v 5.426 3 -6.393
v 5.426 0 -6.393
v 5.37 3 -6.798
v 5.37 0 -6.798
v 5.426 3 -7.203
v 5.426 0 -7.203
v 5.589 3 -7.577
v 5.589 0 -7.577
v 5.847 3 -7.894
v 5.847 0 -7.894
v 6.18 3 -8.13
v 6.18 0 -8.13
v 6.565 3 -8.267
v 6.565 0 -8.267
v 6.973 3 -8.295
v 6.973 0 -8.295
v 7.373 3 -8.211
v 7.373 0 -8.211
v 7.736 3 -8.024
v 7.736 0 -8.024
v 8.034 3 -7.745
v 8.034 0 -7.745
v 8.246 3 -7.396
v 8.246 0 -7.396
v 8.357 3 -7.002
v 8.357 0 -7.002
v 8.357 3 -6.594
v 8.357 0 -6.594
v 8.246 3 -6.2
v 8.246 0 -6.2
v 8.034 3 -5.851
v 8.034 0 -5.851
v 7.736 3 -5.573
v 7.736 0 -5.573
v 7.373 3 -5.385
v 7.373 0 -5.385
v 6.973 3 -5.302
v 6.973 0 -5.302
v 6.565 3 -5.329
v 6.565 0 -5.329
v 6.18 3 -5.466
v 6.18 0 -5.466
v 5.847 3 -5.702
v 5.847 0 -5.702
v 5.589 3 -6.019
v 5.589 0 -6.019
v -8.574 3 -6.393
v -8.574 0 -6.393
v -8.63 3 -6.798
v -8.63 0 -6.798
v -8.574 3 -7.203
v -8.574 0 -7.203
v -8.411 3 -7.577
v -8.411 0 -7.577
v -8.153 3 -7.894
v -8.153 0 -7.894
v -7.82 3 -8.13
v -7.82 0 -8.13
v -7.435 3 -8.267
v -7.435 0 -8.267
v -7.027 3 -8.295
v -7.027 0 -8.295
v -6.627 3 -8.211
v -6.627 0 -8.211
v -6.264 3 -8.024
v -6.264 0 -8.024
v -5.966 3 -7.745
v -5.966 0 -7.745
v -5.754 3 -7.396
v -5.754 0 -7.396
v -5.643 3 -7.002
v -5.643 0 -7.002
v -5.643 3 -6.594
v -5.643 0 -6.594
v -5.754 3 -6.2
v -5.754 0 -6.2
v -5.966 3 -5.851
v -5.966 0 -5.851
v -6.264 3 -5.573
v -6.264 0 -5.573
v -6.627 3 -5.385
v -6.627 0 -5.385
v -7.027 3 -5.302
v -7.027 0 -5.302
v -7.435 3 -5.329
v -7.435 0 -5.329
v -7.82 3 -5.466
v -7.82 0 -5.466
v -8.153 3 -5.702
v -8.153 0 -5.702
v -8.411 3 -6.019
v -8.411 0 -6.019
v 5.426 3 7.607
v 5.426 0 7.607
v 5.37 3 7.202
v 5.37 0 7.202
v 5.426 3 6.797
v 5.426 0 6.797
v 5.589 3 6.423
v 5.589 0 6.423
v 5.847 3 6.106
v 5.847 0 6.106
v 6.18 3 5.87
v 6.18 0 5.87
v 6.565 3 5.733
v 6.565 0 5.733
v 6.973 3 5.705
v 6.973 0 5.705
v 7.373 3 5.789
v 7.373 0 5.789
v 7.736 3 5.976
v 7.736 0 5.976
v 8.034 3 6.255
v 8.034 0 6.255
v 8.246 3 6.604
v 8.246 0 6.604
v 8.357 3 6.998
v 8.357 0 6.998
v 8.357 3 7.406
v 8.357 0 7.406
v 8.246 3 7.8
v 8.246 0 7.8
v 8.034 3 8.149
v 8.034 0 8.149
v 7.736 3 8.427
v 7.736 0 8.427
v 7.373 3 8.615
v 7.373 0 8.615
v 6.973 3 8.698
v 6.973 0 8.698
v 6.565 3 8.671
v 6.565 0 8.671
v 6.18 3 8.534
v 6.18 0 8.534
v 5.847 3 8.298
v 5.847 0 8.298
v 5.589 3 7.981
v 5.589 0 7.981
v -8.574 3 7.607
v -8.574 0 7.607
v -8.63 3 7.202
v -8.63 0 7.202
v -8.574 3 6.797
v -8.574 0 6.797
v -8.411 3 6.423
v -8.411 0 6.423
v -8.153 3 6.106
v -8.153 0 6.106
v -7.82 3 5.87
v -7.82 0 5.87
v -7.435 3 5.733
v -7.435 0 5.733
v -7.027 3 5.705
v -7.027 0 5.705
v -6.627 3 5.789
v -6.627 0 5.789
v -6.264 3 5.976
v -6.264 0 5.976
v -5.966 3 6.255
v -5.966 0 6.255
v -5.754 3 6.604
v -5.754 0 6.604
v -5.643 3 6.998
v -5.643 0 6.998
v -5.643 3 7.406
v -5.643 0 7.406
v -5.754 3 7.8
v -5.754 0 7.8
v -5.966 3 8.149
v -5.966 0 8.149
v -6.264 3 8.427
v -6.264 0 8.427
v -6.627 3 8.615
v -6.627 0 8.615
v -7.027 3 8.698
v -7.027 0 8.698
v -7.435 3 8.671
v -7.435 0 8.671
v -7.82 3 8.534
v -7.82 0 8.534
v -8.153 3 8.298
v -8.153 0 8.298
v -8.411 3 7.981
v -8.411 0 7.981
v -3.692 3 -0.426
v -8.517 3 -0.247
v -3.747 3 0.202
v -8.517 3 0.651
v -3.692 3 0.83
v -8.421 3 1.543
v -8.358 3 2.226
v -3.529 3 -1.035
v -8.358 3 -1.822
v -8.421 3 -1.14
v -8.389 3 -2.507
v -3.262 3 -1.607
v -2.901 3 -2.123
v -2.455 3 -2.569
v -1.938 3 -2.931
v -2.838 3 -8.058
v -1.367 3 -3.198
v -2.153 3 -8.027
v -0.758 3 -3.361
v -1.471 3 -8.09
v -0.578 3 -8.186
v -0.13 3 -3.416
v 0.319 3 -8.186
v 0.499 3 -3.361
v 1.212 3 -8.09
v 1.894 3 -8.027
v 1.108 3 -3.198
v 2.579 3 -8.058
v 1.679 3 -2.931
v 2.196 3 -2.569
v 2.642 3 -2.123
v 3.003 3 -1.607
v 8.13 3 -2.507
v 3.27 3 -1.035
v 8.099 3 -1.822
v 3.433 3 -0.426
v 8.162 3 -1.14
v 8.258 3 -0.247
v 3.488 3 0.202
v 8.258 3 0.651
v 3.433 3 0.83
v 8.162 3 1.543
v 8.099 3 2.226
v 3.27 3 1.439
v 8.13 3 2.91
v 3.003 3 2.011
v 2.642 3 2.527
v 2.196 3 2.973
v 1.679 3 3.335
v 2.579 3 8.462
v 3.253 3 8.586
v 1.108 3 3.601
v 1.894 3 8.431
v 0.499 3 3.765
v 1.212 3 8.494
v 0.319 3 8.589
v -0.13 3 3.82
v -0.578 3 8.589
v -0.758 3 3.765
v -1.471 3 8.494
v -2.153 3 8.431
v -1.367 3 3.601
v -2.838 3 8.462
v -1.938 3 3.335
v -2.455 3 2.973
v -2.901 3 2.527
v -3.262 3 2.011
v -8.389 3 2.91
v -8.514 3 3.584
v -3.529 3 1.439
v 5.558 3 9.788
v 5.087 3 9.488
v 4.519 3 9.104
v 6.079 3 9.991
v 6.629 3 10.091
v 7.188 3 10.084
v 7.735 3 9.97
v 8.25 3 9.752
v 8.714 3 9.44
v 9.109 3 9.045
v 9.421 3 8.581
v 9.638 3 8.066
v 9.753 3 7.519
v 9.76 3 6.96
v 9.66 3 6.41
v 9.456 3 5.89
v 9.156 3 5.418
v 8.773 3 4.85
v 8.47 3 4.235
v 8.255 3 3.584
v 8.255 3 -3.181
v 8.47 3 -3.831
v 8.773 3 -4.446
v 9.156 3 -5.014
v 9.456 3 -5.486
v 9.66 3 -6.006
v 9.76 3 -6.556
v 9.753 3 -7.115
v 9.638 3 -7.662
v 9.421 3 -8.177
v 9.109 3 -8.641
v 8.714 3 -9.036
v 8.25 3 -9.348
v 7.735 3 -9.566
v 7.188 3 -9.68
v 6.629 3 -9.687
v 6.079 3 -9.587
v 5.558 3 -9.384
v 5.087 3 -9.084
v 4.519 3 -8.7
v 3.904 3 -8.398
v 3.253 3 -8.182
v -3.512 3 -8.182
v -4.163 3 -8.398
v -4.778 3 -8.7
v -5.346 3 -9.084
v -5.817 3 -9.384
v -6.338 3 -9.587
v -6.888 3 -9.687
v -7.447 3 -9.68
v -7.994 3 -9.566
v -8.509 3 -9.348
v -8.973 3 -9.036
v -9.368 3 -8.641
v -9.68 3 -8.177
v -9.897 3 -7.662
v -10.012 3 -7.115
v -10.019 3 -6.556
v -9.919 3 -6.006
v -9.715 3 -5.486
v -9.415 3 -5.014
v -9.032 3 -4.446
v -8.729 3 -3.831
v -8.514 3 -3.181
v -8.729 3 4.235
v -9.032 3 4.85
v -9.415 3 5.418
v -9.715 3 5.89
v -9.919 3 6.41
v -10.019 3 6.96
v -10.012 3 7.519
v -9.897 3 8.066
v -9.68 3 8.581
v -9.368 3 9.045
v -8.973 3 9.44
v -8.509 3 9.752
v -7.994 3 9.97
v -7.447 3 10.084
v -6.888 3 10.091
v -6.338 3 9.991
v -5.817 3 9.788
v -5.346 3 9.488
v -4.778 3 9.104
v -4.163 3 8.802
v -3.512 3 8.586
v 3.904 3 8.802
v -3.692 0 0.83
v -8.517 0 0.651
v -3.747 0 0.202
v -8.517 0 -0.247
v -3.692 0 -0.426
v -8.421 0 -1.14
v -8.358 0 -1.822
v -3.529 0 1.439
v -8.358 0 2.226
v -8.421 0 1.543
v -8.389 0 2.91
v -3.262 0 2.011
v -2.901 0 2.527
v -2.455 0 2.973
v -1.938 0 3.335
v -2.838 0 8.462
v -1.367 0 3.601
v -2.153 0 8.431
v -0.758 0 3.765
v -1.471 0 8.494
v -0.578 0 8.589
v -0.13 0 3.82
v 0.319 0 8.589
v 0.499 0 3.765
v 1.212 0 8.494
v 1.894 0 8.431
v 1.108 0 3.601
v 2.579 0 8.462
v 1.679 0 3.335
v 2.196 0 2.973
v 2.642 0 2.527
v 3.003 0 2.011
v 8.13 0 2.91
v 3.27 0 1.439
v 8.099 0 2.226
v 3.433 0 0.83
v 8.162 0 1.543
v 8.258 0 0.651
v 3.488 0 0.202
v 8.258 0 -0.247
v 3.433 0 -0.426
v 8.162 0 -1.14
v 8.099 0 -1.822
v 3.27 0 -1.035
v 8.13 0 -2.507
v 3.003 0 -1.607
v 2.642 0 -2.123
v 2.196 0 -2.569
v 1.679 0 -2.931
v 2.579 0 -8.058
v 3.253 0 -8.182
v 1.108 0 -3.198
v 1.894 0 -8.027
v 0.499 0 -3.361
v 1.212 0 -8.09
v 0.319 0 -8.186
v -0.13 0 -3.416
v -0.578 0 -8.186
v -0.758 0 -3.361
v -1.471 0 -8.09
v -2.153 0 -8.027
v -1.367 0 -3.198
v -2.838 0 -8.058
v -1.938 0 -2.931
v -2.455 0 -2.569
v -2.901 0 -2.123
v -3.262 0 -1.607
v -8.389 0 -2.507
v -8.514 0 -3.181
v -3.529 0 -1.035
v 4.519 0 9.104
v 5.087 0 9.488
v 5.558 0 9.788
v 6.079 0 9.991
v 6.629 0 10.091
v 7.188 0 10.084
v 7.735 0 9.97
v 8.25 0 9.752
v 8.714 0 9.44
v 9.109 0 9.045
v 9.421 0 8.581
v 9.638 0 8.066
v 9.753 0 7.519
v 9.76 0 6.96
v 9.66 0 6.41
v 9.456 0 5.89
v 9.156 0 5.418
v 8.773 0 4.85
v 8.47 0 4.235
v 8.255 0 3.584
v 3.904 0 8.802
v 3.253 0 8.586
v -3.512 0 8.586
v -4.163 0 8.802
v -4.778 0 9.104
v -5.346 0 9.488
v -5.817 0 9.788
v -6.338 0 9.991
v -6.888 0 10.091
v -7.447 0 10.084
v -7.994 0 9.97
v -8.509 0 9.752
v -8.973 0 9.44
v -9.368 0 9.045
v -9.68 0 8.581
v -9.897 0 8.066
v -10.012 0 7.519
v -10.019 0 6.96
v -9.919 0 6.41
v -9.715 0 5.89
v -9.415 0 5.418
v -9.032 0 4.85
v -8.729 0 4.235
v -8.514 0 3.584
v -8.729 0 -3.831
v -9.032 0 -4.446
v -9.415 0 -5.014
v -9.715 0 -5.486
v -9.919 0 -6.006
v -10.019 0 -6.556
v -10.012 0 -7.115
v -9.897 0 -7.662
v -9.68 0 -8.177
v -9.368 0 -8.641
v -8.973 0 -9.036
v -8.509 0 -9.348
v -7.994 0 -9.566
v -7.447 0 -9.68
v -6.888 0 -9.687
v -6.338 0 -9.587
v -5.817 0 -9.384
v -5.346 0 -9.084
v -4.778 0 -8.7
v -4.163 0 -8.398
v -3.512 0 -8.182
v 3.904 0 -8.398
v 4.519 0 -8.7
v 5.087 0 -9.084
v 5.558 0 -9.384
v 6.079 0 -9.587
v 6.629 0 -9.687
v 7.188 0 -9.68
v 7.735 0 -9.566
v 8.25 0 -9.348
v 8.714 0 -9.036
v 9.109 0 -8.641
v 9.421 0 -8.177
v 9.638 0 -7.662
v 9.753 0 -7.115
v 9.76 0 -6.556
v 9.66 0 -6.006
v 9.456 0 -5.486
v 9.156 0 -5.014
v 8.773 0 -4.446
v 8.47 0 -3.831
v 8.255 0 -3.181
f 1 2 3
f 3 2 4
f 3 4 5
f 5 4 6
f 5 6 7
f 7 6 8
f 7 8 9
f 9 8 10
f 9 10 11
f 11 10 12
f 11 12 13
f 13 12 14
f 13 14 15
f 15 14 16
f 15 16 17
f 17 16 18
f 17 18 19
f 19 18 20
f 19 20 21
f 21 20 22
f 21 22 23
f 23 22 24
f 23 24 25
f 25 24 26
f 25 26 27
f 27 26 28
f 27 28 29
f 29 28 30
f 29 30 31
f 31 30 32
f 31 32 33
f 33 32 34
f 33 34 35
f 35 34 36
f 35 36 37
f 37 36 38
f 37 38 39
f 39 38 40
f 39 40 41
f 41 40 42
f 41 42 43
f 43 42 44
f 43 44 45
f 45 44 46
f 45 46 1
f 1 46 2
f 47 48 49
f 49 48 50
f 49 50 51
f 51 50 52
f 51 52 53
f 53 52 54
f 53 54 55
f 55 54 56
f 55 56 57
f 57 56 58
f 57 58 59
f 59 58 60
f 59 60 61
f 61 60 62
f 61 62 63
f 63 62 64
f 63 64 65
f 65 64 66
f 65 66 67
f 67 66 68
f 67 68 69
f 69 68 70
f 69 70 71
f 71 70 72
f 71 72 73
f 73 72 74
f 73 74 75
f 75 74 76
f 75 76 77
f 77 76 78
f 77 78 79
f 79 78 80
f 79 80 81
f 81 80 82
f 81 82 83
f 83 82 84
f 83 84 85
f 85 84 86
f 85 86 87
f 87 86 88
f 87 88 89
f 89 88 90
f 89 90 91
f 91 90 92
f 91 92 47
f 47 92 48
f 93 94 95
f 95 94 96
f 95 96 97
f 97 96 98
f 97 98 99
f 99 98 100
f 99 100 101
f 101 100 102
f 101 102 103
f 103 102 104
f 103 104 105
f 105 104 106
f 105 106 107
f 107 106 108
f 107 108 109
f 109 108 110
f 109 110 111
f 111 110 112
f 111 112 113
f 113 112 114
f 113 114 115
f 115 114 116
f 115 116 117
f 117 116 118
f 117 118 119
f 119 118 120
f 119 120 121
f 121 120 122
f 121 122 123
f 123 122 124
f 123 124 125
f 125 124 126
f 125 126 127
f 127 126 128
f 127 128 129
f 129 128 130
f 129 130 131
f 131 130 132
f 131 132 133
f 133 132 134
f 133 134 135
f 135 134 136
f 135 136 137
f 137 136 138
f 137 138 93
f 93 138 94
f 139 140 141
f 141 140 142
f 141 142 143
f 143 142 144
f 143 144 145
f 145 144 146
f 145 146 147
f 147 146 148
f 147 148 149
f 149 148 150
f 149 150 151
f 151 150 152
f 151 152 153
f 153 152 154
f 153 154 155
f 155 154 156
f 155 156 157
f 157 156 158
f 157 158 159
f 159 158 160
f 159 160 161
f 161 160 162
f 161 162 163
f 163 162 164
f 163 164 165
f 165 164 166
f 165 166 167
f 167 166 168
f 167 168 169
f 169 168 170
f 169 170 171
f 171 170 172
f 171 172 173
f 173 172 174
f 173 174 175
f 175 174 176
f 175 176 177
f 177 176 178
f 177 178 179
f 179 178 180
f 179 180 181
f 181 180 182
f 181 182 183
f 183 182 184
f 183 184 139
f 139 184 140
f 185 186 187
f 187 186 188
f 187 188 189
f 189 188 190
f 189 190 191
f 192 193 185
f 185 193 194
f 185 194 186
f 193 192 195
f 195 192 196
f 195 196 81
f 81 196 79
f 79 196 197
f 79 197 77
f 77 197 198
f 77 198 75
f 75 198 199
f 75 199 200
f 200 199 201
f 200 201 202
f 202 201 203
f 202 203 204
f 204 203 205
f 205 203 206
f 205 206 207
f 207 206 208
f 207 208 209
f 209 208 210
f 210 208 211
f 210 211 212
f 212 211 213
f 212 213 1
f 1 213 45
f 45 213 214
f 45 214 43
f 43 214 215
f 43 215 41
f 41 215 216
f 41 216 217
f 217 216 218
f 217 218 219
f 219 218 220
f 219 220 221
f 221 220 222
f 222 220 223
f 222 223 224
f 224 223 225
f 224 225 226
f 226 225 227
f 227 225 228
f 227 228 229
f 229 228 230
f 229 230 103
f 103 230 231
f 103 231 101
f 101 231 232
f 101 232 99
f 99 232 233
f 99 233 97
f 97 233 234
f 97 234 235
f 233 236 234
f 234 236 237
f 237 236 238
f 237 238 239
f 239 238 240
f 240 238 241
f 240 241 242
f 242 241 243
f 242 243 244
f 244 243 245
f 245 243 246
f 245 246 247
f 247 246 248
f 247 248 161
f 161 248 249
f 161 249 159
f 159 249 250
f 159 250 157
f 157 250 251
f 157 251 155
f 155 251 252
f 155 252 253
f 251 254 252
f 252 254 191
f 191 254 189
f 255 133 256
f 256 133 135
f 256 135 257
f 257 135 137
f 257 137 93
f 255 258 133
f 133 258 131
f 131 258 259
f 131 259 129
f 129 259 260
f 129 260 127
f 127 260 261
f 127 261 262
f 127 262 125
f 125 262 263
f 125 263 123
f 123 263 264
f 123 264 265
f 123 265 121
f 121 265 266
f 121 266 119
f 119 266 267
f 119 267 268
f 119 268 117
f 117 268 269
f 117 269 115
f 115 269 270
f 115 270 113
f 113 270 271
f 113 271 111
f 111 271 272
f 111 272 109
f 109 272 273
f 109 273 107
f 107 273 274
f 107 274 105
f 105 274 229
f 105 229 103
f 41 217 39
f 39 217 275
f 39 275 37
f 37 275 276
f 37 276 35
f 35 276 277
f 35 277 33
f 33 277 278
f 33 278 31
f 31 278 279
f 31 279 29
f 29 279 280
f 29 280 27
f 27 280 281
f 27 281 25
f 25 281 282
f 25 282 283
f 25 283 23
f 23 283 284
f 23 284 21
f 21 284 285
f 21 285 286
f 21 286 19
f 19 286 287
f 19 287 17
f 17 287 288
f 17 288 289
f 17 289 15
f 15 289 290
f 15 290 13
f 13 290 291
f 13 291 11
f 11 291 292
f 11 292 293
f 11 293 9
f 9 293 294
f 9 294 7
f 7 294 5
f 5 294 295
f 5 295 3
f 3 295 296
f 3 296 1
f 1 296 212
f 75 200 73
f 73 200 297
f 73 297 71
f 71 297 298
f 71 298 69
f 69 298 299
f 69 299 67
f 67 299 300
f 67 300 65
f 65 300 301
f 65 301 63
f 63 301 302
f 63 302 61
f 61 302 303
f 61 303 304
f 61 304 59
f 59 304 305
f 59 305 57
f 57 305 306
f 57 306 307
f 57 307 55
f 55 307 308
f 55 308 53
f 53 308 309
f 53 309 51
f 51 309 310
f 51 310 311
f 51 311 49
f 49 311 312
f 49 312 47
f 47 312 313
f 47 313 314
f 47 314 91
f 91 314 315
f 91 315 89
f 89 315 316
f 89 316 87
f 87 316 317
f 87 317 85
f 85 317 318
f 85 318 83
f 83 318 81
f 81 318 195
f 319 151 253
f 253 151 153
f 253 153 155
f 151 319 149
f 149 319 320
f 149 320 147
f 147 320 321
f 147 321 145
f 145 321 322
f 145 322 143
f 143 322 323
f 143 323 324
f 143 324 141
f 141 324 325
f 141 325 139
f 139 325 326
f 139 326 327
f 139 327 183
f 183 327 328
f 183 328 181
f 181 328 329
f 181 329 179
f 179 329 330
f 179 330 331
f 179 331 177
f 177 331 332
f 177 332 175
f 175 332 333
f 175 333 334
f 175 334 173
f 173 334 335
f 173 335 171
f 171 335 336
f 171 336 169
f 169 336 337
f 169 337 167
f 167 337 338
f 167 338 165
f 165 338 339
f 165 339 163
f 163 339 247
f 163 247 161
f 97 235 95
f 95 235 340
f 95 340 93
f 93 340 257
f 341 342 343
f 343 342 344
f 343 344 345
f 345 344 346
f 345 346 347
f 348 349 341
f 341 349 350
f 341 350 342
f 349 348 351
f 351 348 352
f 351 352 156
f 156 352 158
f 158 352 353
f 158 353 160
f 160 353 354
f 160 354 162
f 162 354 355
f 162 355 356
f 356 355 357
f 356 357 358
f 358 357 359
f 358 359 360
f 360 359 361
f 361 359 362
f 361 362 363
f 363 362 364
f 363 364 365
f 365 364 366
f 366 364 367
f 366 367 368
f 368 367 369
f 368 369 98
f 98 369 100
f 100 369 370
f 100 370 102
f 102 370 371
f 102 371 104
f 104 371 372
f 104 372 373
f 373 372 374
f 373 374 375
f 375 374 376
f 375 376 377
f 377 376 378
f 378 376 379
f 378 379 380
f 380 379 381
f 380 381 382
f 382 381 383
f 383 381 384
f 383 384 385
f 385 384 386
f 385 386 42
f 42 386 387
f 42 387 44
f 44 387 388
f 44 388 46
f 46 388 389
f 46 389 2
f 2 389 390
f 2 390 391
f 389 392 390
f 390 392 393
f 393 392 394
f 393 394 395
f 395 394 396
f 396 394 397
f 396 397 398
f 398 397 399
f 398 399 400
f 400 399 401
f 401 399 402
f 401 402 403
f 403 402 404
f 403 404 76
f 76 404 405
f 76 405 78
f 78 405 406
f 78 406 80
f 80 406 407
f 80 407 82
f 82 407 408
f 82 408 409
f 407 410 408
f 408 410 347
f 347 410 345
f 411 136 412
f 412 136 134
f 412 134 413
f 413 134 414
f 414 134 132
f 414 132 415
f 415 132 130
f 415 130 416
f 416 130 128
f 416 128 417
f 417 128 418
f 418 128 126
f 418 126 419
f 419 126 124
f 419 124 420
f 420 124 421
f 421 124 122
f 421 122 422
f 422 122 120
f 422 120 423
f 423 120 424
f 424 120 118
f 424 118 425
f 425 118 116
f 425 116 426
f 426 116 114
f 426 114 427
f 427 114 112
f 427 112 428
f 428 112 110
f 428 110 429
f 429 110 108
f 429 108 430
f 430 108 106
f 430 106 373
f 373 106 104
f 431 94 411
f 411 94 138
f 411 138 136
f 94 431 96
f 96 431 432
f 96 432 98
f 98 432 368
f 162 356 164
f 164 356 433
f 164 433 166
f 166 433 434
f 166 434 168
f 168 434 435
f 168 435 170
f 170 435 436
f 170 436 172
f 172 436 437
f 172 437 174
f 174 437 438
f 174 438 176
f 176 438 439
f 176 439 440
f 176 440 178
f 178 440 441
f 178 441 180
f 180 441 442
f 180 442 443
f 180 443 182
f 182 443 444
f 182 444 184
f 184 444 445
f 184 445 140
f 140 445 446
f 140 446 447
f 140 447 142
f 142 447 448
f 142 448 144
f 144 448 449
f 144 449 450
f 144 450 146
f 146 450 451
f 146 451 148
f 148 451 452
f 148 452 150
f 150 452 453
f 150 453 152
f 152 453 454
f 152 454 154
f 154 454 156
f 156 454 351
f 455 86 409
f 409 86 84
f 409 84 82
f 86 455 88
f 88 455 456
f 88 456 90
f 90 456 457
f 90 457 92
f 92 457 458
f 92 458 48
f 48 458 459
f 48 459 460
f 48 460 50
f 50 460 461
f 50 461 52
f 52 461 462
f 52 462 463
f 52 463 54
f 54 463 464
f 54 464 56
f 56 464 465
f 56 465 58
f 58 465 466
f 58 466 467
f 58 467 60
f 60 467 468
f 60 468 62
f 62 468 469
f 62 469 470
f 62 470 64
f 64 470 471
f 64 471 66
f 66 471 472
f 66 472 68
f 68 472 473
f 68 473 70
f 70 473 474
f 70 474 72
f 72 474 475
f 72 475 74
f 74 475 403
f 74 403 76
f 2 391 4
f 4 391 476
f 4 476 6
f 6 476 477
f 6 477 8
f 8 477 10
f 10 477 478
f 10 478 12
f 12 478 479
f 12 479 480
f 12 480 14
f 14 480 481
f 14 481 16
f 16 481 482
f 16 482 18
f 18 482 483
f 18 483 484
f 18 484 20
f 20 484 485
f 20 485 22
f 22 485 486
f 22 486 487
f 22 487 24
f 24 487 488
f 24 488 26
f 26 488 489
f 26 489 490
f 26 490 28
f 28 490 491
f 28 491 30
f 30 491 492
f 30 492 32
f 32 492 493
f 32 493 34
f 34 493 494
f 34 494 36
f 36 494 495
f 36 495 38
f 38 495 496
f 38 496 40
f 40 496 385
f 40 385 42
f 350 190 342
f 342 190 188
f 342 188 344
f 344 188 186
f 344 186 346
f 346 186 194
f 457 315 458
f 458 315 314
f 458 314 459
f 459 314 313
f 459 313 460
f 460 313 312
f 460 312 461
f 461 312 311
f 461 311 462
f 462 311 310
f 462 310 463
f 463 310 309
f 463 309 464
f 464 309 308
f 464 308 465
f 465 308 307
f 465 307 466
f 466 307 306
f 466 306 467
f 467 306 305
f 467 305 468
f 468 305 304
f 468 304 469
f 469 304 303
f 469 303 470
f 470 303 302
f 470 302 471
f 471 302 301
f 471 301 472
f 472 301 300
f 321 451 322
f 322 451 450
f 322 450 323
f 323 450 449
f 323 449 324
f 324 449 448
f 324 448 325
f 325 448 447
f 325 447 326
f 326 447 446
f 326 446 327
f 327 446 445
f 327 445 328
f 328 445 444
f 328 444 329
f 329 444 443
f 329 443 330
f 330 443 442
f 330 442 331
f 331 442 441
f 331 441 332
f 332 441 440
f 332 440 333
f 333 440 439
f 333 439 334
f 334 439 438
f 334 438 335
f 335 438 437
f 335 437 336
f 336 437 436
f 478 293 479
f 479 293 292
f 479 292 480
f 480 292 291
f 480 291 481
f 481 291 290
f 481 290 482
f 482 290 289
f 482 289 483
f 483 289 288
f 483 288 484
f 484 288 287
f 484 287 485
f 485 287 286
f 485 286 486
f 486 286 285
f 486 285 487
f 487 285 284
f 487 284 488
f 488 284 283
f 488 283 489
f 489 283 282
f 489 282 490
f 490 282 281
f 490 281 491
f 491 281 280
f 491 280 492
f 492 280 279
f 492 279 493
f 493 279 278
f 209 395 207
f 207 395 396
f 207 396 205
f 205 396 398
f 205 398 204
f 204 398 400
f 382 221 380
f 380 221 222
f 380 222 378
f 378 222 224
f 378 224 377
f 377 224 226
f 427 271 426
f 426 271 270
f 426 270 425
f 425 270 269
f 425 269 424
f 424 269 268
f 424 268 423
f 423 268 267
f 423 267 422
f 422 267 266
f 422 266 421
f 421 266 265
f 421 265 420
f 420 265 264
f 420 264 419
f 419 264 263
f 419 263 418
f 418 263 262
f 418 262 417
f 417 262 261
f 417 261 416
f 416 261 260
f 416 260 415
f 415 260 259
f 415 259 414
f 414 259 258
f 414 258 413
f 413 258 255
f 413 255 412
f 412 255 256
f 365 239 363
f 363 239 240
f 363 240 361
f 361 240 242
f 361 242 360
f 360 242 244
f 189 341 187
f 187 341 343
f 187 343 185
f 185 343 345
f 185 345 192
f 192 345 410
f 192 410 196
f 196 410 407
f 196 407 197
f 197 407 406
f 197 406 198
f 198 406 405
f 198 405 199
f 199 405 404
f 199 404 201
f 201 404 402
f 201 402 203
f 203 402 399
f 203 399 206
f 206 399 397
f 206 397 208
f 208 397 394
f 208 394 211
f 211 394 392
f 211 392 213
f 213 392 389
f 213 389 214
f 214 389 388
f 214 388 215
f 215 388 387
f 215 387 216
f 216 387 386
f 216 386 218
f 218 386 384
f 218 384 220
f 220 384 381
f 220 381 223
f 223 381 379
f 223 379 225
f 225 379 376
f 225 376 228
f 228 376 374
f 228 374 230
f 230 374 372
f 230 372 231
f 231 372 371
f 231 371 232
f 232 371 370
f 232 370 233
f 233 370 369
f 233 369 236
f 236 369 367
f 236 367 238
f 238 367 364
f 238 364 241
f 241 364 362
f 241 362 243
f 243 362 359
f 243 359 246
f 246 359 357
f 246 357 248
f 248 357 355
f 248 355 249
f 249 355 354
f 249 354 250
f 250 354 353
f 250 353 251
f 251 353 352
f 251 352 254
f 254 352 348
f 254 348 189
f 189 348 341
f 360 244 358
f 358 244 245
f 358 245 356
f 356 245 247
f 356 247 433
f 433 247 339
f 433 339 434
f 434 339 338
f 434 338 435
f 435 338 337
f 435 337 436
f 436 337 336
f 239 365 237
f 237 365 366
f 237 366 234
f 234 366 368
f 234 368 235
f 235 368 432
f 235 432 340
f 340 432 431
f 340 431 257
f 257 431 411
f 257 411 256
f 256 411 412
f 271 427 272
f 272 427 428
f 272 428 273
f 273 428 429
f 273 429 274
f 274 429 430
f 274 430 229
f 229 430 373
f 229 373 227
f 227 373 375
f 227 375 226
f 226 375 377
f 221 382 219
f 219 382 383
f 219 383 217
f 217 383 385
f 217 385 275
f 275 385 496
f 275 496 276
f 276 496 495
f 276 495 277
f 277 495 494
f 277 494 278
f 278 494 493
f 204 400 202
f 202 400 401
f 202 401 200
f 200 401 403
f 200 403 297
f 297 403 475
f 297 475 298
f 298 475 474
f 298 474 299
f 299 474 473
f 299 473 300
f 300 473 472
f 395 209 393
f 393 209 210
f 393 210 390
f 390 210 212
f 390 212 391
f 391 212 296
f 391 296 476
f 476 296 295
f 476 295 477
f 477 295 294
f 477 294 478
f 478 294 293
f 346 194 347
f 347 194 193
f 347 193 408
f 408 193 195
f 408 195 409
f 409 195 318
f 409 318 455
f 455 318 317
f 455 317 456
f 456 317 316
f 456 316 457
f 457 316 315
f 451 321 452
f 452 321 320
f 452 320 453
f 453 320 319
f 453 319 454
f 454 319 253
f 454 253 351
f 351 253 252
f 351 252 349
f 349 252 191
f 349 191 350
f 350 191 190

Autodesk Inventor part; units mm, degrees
ref_plane "YZ Plane" through (0, 0, 0) normal (1, 0, 0) x (0, 1, 0)
ref_plane "XZ Plane" through (0, 0, 0) normal (0, 1, 0) x (-1, 0, 0)
ref_plane "XY Plane" through (0, 0, 0) normal (0, 0, 1) x (1, 0, 0)
sketch "Эскиз1" plane through (0, 0, 0) normal (0, 1, 0) x (-1, 0, 0)
  circle A0 centre (0.1295, 0.2019) radius 7
  circle A1 centre (-6.8705, 7.2019) radius 1.5
  circle A2 centre (7.1295, 7.2019) radius 1.5
  circle A3 centre (7.1295, -6.7981) radius 1.5
  circle A4 centre (-6.8705, -6.7981) radius 1.5
  line L0 (-6.8705, -10.8093) -> (-6.8705, 13.8282) construction
  line L1 (14.3213, 7.2019) -> (-16.097, 7.2019) construction
  line L2 (7.1295, -11.068) -> (7.1295, 16.1729) construction
  arc A5 (6.5047, 14.6631) -> (7.1295, 16.1729) centre (4.9928, 16.1729) ccw construction
  line L3 (12.5583, -6.7981) -> (-15.6188, -6.7981) construction
  circle A6 centre (7.1295, 7.2019) radius 2.8995
  circle A7 centre (-6.8705, 7.2019) radius 2.8995
  circle A8 centre (-6.8705, -6.7981) radius 2.8995
  circle A9 centre (7.1295, -6.7981) radius 2.8995
  arc A10 (0.5599, -6.4772) -> (-0.2768, -6.4772) centre (0.1416, -8.4329) ccw
  line L4 (5.6295, -6.7981) -> (0.1295, -6.7981)
  line L5 (7.1295, -5.2981) -> (7.1295, 0.2019)
  line L6 (7.1295, 5.7019) -> (7.1295, 0.2019)
  line L7 (5.6295, 7.2019) -> (-5.3705, 7.2019)
  line L8 (-6.8705, 5.7019) -> (-6.8705, -5.2981)
  line L9 (-5.3705, -6.7981) -> (0.1295, -6.7981)
  circle A11 centre (0.1295, 0.2019) radius 8.3995
  circle A12 centre (0.1295, 0.2019) radius 3.6176
  point P0 (-3.971, 7.2019)
  point P1 (-6.8705, 4.3024)
  point P2 (-6.8705, -3.8986)
  point P3 (-3.971, -6.7981)
  point P4 (4.23, -6.7981)
  point P5 (7.1295, -3.8986)
  point P6 (7.1295, 4.3024)
  point P7 (4.23, 7.2019)
  point P8 (4.2478, 7.5225)
  point P9 (-3.9888, 7.5225)
  point P10 (-7.1911, 4.3202)
  point P11 (-7.1911, -3.9164)
  point P12 (-3.9888, -7.1187)
  point P13 (4.2478, -7.1187)
  point P14 (7.4501, -3.9164)
  point P15 (7.4501, 4.3202)
  dimension "d23" = 14
  dimension "d24" = 3
  dimension "d25" = 3
  dimension "d26" = 3
  dimension "d27" = 3
  dimension "d28" = 2
extrude "Выдавливание1" add sketch "Эскиз1" along normal blind 3 contours L5 A9 A0 | L6 A6 A11 A9 L5 | A0 A6 L6 | A0 L7 A6 | A6 L7 A11 L6 | A9 L4 A0 | A9 L5 A11 L4 | A9 A11 L5 | L6 A11 A6 | L7 A7 A11 A6 | A0 A7 L7 | A6 A11 L7 | L9 A8 A0 | L4 A9 A11 A8 L9 | L4 A11 A9 | A9 A11 L4 A3 L5 | L5 A3 A11 | A11 L6 A2 L7 A6 | A11 A2 L6 | A0 L8 A7 | A7 L8 A11 L7 | L7 A11 A7 | L7 A2 A11 | A8 L8 A0 | A8 L9 A11 L8 | A8 A11 L9 | A11 A3 L4 | L8 A8 A11 A7 | A7 A11 L8 | A11 L7 A1 L8 A7 | A11 A1 L7 | L8 A11 A8 | A8 A11 L8 A4 L9 | L9 A4 A11 | L8 A1 A11 | A11 A4 L8
extrude "Выдавливание3" add sketch "Эскиз1" along normal up to surface (3 mm away) contours A0
fillet "Сопряжение грани1" radius 5 2 edges at (-4.2478, 1.5, 7.5225) (-7.4501, 1.5, 4.3202)
fillet "Сопряжение грани2" radius 5 2 edges at (3.9888, 1.5, 7.5225) (7.1911, 1.5, 4.3202)
fillet_without_effect "Сопряжение грани3"
fillet "Сопряжение грани4" radius 5 2 edges at (7.1911, 1.5, -3.9164) (3.9888, 1.5, -7.1187)
fillet "Сопряжение грани5" radius 5 2 edges at (-4.2478, 1.5, -7.1187) (-7.4501, 1.5, -3.9164)
fillet_without_effect "Сопряжение грани6"
fillet_without_effect "Сопряжение грани7"
fillet_without_effect "Сопряжение грани8"
properties part number "крепление подшипника_1"
